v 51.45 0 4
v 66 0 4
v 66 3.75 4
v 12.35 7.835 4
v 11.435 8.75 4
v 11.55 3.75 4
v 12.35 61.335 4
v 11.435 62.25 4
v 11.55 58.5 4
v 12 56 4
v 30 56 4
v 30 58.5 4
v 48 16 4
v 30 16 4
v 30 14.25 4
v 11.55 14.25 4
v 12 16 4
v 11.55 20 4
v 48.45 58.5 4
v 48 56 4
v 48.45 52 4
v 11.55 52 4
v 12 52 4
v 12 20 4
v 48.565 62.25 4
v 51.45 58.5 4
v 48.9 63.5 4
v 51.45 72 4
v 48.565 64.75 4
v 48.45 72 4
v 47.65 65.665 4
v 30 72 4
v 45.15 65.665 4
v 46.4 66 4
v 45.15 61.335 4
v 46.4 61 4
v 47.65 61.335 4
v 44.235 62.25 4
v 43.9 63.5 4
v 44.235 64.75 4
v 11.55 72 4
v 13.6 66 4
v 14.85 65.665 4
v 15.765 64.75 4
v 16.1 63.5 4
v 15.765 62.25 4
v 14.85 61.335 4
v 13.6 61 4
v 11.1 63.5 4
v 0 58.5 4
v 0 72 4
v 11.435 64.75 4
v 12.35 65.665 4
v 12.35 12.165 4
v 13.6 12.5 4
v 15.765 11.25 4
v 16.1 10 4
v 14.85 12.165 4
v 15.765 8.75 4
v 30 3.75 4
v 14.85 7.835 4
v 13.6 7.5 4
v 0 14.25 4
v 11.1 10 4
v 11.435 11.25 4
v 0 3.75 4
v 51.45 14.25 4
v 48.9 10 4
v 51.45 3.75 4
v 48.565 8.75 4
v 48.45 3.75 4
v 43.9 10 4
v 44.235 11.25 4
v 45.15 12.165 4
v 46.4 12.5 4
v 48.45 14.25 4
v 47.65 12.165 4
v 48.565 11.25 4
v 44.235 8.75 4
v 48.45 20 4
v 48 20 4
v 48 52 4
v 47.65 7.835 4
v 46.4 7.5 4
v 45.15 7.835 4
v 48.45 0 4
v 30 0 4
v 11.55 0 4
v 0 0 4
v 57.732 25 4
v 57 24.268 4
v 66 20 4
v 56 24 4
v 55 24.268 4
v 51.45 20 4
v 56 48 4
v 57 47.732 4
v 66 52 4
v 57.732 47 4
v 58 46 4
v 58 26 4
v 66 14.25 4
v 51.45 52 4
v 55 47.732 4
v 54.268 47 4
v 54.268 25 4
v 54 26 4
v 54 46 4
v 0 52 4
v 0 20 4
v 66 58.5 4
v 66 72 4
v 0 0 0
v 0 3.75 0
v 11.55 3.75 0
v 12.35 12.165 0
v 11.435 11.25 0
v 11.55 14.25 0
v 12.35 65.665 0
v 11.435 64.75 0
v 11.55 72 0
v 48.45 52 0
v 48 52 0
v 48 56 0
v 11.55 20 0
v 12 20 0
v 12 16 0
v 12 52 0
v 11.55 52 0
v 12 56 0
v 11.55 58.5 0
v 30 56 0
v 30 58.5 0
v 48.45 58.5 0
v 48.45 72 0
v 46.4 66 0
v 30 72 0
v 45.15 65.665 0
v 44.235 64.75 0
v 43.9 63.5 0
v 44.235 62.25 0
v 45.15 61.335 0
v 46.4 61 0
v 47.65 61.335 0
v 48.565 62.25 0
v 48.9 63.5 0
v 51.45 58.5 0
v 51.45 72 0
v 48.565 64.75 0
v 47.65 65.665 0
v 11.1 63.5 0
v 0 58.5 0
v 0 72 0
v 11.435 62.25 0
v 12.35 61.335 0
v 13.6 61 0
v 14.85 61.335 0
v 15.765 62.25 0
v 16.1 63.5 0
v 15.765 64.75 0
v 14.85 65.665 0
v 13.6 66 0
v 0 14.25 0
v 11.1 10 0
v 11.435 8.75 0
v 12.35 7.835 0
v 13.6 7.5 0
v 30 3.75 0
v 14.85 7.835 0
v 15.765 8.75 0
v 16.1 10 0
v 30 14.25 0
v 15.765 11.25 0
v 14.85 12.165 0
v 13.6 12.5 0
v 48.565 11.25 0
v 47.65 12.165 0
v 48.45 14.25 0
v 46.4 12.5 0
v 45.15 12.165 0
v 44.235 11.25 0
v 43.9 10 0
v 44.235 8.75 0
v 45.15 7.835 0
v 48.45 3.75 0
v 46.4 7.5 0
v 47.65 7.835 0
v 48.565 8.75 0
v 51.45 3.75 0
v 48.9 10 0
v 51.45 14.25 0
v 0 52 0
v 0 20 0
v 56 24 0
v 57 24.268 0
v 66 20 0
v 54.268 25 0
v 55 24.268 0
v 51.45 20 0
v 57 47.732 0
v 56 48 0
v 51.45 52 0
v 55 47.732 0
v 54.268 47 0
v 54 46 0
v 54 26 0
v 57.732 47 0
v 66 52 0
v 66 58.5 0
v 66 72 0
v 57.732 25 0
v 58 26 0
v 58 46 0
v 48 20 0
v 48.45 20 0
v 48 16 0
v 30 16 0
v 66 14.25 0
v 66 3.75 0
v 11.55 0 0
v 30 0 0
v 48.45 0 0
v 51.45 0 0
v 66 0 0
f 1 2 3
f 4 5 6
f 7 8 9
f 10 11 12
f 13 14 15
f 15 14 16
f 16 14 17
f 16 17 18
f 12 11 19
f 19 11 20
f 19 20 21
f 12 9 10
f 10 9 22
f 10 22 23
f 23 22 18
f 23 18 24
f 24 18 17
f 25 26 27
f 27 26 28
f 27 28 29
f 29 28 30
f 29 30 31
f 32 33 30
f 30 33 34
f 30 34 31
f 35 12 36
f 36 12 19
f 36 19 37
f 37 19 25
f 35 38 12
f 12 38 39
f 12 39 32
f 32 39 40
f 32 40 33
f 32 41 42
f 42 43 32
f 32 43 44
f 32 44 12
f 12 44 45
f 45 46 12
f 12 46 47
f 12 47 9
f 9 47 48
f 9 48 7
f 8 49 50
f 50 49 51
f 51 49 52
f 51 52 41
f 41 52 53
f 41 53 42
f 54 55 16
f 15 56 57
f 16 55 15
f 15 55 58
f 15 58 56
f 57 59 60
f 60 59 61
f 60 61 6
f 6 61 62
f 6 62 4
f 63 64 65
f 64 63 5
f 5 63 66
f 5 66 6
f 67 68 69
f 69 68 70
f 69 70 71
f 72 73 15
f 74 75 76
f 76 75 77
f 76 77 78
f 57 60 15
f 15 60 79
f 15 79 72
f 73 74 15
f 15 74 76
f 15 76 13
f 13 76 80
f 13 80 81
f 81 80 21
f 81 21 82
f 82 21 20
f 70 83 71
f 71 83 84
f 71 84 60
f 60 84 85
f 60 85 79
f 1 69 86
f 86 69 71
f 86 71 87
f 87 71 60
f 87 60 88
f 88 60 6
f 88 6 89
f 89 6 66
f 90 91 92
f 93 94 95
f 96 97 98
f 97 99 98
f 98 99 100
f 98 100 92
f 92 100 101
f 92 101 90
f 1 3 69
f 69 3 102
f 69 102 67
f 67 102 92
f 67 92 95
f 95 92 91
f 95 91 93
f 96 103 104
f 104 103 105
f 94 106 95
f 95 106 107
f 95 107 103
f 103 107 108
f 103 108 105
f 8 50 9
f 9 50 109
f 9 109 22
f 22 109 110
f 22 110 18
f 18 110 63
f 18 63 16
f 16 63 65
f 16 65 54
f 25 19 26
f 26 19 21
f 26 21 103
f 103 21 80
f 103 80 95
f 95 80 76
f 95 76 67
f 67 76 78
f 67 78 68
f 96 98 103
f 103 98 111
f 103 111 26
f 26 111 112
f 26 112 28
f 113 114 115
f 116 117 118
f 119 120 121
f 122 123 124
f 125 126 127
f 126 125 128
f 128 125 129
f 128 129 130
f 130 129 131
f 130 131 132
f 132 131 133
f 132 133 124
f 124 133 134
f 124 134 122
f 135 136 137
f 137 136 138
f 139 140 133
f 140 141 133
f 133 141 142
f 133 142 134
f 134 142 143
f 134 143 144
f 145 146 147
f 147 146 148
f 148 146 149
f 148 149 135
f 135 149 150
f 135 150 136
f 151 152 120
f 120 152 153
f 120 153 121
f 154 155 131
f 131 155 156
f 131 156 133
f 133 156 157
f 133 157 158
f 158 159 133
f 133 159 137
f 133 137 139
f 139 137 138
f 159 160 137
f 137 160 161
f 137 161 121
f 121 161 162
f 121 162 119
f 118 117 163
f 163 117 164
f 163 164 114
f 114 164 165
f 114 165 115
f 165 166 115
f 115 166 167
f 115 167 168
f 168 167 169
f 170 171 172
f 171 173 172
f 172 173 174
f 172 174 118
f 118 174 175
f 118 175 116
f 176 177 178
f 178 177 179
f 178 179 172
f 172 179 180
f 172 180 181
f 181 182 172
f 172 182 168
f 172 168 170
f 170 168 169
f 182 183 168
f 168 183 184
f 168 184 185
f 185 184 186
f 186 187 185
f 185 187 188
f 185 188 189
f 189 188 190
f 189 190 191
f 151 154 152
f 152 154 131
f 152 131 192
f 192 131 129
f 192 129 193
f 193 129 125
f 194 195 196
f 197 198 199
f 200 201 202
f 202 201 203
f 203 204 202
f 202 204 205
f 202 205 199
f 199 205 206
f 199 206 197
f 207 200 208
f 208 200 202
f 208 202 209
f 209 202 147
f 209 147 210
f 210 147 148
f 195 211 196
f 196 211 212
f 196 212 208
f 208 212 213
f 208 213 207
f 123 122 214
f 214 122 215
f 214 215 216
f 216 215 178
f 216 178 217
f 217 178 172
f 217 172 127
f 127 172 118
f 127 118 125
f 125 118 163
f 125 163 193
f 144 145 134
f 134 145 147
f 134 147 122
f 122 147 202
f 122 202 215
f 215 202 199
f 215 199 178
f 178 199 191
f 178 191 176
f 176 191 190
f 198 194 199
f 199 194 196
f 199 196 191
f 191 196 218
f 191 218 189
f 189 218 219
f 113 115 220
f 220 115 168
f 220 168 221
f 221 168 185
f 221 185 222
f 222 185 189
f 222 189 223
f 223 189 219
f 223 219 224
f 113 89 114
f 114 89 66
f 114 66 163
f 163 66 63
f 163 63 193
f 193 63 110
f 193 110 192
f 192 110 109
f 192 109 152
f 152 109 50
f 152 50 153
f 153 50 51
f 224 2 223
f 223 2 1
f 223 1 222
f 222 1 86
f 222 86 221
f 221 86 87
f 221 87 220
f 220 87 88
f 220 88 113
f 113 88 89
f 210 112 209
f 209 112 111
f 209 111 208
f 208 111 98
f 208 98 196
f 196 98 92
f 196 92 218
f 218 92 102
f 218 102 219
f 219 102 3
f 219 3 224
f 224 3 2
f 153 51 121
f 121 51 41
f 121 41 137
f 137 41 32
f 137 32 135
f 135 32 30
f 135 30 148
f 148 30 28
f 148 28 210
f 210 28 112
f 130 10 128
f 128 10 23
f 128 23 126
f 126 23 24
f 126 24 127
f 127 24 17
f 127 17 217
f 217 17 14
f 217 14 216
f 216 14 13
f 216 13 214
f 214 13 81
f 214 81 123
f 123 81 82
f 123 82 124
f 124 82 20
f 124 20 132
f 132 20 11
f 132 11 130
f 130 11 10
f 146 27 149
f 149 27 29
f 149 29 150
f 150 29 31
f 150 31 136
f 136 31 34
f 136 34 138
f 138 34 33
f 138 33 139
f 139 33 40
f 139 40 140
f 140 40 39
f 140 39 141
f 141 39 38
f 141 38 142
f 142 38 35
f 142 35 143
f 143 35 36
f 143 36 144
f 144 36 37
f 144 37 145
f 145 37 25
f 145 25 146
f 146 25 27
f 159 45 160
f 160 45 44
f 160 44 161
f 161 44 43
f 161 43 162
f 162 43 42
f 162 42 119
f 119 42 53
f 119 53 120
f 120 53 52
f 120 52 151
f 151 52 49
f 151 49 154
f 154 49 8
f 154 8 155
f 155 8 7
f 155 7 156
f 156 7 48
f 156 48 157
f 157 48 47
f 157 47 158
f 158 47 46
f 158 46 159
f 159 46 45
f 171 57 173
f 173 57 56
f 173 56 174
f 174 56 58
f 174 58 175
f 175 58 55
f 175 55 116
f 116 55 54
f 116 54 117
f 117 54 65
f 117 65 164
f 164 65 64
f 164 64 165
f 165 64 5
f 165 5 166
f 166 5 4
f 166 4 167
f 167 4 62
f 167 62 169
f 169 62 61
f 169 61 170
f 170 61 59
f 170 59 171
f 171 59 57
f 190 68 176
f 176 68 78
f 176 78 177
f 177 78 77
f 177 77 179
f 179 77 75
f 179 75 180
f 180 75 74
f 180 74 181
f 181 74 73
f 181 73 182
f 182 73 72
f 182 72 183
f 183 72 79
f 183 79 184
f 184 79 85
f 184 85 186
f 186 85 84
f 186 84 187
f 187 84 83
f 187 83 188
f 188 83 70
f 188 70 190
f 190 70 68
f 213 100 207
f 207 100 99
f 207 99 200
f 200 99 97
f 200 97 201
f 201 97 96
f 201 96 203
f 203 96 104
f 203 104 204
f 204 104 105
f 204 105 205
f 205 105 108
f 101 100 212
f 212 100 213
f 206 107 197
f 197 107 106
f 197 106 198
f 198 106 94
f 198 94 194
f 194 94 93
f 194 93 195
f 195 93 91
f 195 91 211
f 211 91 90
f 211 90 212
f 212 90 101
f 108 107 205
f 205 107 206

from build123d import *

# Parameters (mm, degrees)
SKETCH1_W           = 66
SKETCH1_H           = 72
SKETCH1_W_2         = 36
SKETCH1_H_2         = 40
BOSS_EXTRUDE1_DEPTH = 4
SKETCH2_R           = 2.5
CUT_EXTRUDE1_DEPTH  = 10
CUT_EXTRUDE3_DEPTH  = 10


with BuildPart() as part:
    # Sketch1 → Boss-Extrude1 (new body)
    with BuildSketch(Plane.XY):
        with Locations((33, 36)):
            Rectangle(SKETCH1_W, SKETCH1_H)
        with Locations((30, 36)):
            Rectangle(SKETCH1_W_2, SKETCH1_H_2, mode=Mode.SUBTRACT)
    extrude(amount=BOSS_EXTRUDE1_DEPTH)

    # Sketch2 → Cut-Extrude1 (cut)
    with BuildSketch(Plane.XY.offset(4)):
        with Locations((46.4, 63.5)):
            Circle(SKETCH2_R)
        with Locations((13.6, 63.5)):
            Circle(SKETCH2_R)
        with Locations((13.6, 10)):
            Circle(SKETCH2_R)
        with Locations((46.4, 10)):
            Circle(SKETCH2_R)
    extrude(amount=-CUT_EXTRUDE1_DEPTH, mode=Mode.SUBTRACT)

    # Sketch4 → Cut-Extrude3 (cut)
    with BuildSketch(Plane.XY.offset(4)):
        with BuildLine():
            Line((58, 46), (58, 26))
            ThreePointArc((58, 26), (56, 24), (54, 26))
            Line((54, 26), (54, 46))
            ThreePointArc((54, 46), (56, 48), (58, 46))
        make_face()
    extrude(amount=-CUT_EXTRUDE3_DEPTH, mode=Mode.SUBTRACT)


solid = part.part
